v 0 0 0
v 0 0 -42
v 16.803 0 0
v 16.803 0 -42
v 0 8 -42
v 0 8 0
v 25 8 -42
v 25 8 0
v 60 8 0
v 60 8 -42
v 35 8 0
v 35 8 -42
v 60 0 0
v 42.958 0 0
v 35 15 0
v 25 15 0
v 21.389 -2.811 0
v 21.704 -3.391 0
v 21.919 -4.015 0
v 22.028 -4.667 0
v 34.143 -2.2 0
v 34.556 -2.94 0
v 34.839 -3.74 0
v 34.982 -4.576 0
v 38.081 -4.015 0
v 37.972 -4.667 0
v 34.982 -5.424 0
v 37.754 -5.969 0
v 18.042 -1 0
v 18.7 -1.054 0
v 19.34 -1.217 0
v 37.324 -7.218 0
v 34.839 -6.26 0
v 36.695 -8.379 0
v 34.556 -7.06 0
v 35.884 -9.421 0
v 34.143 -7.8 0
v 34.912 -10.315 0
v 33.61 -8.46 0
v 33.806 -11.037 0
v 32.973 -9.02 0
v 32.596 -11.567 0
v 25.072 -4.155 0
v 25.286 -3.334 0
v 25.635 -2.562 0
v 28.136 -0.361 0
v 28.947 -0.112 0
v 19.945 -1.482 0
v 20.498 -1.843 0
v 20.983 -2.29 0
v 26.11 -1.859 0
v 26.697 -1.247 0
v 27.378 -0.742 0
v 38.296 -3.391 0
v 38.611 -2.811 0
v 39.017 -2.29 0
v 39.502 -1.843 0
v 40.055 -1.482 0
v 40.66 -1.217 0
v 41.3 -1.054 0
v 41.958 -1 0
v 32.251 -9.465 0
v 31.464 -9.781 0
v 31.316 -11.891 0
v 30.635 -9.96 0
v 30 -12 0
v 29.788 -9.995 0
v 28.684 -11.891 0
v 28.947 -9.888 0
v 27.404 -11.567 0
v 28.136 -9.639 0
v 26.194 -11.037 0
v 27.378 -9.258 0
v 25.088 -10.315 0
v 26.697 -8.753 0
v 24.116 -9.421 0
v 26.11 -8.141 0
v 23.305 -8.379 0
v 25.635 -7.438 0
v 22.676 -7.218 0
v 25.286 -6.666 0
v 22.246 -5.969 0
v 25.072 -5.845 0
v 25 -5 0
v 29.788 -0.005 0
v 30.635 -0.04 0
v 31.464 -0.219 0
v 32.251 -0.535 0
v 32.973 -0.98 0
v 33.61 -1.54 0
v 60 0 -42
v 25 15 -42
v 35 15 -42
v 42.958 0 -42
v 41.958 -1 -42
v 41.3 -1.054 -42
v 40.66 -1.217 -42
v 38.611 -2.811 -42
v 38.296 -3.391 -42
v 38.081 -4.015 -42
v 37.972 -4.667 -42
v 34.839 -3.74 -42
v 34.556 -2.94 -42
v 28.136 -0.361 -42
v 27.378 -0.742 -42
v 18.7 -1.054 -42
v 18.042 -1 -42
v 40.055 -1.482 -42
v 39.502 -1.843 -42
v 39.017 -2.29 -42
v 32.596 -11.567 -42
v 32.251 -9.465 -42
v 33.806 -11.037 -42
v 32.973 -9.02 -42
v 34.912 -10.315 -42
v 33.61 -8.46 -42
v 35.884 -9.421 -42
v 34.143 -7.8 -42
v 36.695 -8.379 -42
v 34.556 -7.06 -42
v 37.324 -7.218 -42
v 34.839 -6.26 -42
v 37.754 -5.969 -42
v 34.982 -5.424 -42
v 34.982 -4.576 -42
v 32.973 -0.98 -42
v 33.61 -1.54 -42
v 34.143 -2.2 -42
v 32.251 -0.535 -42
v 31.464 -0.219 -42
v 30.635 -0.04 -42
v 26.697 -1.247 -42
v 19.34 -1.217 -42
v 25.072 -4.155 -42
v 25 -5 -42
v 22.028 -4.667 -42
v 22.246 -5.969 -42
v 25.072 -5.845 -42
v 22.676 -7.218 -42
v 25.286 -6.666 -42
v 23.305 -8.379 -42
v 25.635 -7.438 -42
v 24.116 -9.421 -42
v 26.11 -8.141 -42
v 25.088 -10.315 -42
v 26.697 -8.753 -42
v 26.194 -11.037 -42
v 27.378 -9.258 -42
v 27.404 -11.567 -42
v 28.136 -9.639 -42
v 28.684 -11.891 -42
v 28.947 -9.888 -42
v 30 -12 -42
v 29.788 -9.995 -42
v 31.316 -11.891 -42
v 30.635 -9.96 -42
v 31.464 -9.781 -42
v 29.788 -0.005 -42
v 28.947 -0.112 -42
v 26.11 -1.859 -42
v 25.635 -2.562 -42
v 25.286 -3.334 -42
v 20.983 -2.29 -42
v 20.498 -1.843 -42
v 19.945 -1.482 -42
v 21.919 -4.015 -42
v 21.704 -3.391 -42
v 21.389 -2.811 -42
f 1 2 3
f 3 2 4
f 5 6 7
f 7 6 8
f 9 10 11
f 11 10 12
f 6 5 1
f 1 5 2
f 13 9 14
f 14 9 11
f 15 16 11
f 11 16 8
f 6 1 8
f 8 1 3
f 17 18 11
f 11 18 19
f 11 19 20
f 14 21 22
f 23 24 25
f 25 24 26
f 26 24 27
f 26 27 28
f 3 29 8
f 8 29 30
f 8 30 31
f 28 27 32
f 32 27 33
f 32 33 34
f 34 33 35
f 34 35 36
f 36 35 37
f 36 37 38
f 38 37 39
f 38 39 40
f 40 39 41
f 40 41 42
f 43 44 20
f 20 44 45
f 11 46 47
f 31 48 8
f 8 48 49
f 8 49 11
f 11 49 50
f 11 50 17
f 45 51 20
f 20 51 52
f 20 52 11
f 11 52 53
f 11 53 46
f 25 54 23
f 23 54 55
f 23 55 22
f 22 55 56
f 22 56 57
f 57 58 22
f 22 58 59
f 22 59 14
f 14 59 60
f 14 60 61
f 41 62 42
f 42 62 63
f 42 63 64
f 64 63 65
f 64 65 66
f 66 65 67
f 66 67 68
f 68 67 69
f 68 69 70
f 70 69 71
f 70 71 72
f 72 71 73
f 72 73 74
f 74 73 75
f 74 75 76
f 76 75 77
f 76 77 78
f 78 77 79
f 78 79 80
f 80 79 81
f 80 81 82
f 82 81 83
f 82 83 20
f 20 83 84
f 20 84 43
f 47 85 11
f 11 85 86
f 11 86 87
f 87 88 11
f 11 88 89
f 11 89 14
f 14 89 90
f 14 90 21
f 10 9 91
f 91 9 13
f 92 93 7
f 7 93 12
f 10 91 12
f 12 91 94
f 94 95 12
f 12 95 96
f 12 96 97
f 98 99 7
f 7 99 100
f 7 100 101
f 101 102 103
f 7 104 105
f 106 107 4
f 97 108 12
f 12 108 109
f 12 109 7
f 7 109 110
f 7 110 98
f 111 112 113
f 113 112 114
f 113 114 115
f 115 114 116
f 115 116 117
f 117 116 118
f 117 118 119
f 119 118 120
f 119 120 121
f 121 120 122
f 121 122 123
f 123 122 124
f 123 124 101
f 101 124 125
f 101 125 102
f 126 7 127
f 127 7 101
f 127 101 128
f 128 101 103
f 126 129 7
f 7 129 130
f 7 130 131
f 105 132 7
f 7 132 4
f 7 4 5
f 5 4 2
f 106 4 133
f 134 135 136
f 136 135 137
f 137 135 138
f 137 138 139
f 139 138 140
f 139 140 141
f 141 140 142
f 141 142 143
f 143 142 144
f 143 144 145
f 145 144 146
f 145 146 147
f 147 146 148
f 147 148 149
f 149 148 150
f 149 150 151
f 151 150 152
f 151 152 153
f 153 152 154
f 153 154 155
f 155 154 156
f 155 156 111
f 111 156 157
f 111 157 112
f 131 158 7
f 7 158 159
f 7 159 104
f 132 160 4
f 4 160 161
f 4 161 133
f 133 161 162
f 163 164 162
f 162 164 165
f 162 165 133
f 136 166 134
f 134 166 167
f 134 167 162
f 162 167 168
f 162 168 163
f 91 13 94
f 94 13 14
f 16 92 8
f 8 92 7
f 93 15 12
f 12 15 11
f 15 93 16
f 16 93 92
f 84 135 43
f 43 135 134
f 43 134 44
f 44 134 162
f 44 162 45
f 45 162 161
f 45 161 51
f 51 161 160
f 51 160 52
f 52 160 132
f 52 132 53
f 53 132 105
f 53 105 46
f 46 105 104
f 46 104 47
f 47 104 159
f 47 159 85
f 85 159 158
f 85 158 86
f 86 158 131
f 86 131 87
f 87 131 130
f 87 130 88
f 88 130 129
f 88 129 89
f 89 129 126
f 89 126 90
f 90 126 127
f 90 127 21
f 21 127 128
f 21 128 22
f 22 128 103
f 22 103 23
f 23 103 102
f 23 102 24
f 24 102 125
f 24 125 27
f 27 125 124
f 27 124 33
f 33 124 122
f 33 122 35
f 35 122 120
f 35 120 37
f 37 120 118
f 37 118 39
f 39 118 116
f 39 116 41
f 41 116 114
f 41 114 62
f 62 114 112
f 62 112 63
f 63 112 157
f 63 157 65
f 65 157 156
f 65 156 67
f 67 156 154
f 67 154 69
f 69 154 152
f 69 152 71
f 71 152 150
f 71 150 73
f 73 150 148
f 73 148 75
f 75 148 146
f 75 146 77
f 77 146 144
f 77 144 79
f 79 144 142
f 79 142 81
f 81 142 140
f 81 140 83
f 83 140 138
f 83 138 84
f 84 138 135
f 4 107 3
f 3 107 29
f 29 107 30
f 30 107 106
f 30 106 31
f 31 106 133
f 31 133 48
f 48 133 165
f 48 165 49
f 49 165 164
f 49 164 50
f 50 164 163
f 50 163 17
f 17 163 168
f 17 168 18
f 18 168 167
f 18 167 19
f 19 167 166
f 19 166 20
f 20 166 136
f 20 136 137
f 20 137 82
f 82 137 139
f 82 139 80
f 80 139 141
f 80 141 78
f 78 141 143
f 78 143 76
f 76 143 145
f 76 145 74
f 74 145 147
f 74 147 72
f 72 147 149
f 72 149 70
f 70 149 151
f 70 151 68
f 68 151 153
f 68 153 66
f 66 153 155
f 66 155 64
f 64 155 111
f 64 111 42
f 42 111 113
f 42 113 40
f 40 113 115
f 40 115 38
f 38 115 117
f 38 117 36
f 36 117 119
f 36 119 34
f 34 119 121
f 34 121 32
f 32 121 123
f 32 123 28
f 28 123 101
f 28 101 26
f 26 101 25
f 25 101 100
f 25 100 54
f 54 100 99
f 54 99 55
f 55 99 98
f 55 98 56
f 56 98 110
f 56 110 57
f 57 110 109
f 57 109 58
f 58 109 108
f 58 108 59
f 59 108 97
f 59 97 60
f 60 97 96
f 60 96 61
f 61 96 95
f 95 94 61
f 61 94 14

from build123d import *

# Parameters (mm, degrees)
SKETCH1_W           = 60
SKETCH1_H           = 42
BOSS_EXTRUDE1_DEPTH = 8
SKETCH3_W           = 10
SKETCH3_H           = 42
BOSS_EXTRUDE5_DEPTH = 7
SKETCH5_W           = 14
SKETCH5_H           = 42
BOSS_EXTRUDE6_DEPTH = 11
SKETCH6_R           = 5
CUT_EXTRUDE1_DEPTH  = 75.759614766
FILLET1_R           = 7
FILLET2_R           = 5
FILLET3_R           = 5
BOSS_EXTRUDE7_DEPTH = 42


with BuildPart() as part:
    # Sketch1 → Boss-Extrude1 (new body)
    with BuildSketch(Plane(origin=(0, 0, 0), x_dir=(1, 0, 0), z_dir=(0, 1, 0))):
        with Locations((30, 21)):
            Rectangle(SKETCH1_W, SKETCH1_H)
    extrude(amount=BOSS_EXTRUDE1_DEPTH)

    # Sketch3 → Boss-Extrude5 (add)
    with BuildSketch(Plane(origin=(0, 8, 0), x_dir=(1, 0, 0), z_dir=(0, 1, 0))):
        with Locations((30, 21)):
            Rectangle(SKETCH3_W, SKETCH3_H)
    extrude(amount=BOSS_EXTRUDE5_DEPTH)

    # Sketch5 → Boss-Extrude6 (add)
    with BuildSketch(Plane.XZ):
        with Locations((30, -21)):
            Rectangle(SKETCH5_W, SKETCH5_H)
    extrude(amount=BOSS_EXTRUDE6_DEPTH)

    # Sketch6 → Cut-Extrude1 (cut, through all)
    with BuildSketch(Plane(origin=(0, 0, -42), x_dir=(-1, 0, 0), z_dir=(0, 0, -1))):
        with Locations((-30, -5)):
            Circle(SKETCH6_R)
    extrude(amount=-CUT_EXTRUDE1_DEPTH, mode=Mode.SUBTRACT)

    # Fillet1
    fillet1_edges = [part.edges().sort_by_distance(p)[0] for p in [
        (23, -11, -21),
        (37, -11, -21),
    ]]
    fillet(fillet1_edges, radius=FILLET1_R - 0.0001)  # a hair under: the kernel refuses the full size

    # Fillet2
    fillet2_edges = [part.edges().sort_by_distance(p)[0] for p in [
        (23, 0, -21),
    ]]
    fillet(fillet2_edges, radius=FILLET2_R)

    # Fillet3
    fillet3_edges = [part.edges().sort_by_distance(p)[0] for p in [
        (37, 0, -21),
    ]]
    fillet(fillet3_edges, radius=FILLET3_R)

    # Sketch8 → Boss-Extrude7 (add)
    with BuildSketch(Plane(origin=(0, 0, -42), x_dir=(-1, 0, 0), z_dir=(0, 0, -1))):
        with BuildLine():
            Line((-41.958260743, -1), (-42.958260743, 0))
            Line((-42.958260743, 0), (-41.958260743, 0))
            ThreePointArc((-41.958260743, 0), (-38.573244741, -1.320099639), (-36.9756521, -4.583333333))
            ThreePointArc((-36.9756521, -4.583333333), (-34.739022403, -9.151860505), (-30, -11))
            ThreePointArc((-30, -11), (-25.260977597, -9.151860505), (-23.0243479, -4.583333333))
            ThreePointArc((-23.0243479, -4.583333333), (-21.426755259, -1.320099639), (-18.041739257, 0))
            Line((-18.041739257, 0), (-16.803044796, 0))
            Line((-16.803044796, 0), (-18.041739257, -1))
            ThreePointArc((-18.041739257, -1), (-20.749752058, -2.056079711), (-22.027826171, -4.666666667))
            ThreePointArc((-22.027826171, -4.666666667), (-24.583974397, -9.887840578), (-30, -12))
            ThreePointArc((-30, -12), (-35.416025603, -9.887840578), (-37.972173829, -4.666666667))
            ThreePointArc((-37.972173829, -4.666666667), (-39.250247942, -2.056079711), (-41.958260743, -1))
        make_face()
    extrude(amount=-BOSS_EXTRUDE7_DEPTH)


solid = part.part
